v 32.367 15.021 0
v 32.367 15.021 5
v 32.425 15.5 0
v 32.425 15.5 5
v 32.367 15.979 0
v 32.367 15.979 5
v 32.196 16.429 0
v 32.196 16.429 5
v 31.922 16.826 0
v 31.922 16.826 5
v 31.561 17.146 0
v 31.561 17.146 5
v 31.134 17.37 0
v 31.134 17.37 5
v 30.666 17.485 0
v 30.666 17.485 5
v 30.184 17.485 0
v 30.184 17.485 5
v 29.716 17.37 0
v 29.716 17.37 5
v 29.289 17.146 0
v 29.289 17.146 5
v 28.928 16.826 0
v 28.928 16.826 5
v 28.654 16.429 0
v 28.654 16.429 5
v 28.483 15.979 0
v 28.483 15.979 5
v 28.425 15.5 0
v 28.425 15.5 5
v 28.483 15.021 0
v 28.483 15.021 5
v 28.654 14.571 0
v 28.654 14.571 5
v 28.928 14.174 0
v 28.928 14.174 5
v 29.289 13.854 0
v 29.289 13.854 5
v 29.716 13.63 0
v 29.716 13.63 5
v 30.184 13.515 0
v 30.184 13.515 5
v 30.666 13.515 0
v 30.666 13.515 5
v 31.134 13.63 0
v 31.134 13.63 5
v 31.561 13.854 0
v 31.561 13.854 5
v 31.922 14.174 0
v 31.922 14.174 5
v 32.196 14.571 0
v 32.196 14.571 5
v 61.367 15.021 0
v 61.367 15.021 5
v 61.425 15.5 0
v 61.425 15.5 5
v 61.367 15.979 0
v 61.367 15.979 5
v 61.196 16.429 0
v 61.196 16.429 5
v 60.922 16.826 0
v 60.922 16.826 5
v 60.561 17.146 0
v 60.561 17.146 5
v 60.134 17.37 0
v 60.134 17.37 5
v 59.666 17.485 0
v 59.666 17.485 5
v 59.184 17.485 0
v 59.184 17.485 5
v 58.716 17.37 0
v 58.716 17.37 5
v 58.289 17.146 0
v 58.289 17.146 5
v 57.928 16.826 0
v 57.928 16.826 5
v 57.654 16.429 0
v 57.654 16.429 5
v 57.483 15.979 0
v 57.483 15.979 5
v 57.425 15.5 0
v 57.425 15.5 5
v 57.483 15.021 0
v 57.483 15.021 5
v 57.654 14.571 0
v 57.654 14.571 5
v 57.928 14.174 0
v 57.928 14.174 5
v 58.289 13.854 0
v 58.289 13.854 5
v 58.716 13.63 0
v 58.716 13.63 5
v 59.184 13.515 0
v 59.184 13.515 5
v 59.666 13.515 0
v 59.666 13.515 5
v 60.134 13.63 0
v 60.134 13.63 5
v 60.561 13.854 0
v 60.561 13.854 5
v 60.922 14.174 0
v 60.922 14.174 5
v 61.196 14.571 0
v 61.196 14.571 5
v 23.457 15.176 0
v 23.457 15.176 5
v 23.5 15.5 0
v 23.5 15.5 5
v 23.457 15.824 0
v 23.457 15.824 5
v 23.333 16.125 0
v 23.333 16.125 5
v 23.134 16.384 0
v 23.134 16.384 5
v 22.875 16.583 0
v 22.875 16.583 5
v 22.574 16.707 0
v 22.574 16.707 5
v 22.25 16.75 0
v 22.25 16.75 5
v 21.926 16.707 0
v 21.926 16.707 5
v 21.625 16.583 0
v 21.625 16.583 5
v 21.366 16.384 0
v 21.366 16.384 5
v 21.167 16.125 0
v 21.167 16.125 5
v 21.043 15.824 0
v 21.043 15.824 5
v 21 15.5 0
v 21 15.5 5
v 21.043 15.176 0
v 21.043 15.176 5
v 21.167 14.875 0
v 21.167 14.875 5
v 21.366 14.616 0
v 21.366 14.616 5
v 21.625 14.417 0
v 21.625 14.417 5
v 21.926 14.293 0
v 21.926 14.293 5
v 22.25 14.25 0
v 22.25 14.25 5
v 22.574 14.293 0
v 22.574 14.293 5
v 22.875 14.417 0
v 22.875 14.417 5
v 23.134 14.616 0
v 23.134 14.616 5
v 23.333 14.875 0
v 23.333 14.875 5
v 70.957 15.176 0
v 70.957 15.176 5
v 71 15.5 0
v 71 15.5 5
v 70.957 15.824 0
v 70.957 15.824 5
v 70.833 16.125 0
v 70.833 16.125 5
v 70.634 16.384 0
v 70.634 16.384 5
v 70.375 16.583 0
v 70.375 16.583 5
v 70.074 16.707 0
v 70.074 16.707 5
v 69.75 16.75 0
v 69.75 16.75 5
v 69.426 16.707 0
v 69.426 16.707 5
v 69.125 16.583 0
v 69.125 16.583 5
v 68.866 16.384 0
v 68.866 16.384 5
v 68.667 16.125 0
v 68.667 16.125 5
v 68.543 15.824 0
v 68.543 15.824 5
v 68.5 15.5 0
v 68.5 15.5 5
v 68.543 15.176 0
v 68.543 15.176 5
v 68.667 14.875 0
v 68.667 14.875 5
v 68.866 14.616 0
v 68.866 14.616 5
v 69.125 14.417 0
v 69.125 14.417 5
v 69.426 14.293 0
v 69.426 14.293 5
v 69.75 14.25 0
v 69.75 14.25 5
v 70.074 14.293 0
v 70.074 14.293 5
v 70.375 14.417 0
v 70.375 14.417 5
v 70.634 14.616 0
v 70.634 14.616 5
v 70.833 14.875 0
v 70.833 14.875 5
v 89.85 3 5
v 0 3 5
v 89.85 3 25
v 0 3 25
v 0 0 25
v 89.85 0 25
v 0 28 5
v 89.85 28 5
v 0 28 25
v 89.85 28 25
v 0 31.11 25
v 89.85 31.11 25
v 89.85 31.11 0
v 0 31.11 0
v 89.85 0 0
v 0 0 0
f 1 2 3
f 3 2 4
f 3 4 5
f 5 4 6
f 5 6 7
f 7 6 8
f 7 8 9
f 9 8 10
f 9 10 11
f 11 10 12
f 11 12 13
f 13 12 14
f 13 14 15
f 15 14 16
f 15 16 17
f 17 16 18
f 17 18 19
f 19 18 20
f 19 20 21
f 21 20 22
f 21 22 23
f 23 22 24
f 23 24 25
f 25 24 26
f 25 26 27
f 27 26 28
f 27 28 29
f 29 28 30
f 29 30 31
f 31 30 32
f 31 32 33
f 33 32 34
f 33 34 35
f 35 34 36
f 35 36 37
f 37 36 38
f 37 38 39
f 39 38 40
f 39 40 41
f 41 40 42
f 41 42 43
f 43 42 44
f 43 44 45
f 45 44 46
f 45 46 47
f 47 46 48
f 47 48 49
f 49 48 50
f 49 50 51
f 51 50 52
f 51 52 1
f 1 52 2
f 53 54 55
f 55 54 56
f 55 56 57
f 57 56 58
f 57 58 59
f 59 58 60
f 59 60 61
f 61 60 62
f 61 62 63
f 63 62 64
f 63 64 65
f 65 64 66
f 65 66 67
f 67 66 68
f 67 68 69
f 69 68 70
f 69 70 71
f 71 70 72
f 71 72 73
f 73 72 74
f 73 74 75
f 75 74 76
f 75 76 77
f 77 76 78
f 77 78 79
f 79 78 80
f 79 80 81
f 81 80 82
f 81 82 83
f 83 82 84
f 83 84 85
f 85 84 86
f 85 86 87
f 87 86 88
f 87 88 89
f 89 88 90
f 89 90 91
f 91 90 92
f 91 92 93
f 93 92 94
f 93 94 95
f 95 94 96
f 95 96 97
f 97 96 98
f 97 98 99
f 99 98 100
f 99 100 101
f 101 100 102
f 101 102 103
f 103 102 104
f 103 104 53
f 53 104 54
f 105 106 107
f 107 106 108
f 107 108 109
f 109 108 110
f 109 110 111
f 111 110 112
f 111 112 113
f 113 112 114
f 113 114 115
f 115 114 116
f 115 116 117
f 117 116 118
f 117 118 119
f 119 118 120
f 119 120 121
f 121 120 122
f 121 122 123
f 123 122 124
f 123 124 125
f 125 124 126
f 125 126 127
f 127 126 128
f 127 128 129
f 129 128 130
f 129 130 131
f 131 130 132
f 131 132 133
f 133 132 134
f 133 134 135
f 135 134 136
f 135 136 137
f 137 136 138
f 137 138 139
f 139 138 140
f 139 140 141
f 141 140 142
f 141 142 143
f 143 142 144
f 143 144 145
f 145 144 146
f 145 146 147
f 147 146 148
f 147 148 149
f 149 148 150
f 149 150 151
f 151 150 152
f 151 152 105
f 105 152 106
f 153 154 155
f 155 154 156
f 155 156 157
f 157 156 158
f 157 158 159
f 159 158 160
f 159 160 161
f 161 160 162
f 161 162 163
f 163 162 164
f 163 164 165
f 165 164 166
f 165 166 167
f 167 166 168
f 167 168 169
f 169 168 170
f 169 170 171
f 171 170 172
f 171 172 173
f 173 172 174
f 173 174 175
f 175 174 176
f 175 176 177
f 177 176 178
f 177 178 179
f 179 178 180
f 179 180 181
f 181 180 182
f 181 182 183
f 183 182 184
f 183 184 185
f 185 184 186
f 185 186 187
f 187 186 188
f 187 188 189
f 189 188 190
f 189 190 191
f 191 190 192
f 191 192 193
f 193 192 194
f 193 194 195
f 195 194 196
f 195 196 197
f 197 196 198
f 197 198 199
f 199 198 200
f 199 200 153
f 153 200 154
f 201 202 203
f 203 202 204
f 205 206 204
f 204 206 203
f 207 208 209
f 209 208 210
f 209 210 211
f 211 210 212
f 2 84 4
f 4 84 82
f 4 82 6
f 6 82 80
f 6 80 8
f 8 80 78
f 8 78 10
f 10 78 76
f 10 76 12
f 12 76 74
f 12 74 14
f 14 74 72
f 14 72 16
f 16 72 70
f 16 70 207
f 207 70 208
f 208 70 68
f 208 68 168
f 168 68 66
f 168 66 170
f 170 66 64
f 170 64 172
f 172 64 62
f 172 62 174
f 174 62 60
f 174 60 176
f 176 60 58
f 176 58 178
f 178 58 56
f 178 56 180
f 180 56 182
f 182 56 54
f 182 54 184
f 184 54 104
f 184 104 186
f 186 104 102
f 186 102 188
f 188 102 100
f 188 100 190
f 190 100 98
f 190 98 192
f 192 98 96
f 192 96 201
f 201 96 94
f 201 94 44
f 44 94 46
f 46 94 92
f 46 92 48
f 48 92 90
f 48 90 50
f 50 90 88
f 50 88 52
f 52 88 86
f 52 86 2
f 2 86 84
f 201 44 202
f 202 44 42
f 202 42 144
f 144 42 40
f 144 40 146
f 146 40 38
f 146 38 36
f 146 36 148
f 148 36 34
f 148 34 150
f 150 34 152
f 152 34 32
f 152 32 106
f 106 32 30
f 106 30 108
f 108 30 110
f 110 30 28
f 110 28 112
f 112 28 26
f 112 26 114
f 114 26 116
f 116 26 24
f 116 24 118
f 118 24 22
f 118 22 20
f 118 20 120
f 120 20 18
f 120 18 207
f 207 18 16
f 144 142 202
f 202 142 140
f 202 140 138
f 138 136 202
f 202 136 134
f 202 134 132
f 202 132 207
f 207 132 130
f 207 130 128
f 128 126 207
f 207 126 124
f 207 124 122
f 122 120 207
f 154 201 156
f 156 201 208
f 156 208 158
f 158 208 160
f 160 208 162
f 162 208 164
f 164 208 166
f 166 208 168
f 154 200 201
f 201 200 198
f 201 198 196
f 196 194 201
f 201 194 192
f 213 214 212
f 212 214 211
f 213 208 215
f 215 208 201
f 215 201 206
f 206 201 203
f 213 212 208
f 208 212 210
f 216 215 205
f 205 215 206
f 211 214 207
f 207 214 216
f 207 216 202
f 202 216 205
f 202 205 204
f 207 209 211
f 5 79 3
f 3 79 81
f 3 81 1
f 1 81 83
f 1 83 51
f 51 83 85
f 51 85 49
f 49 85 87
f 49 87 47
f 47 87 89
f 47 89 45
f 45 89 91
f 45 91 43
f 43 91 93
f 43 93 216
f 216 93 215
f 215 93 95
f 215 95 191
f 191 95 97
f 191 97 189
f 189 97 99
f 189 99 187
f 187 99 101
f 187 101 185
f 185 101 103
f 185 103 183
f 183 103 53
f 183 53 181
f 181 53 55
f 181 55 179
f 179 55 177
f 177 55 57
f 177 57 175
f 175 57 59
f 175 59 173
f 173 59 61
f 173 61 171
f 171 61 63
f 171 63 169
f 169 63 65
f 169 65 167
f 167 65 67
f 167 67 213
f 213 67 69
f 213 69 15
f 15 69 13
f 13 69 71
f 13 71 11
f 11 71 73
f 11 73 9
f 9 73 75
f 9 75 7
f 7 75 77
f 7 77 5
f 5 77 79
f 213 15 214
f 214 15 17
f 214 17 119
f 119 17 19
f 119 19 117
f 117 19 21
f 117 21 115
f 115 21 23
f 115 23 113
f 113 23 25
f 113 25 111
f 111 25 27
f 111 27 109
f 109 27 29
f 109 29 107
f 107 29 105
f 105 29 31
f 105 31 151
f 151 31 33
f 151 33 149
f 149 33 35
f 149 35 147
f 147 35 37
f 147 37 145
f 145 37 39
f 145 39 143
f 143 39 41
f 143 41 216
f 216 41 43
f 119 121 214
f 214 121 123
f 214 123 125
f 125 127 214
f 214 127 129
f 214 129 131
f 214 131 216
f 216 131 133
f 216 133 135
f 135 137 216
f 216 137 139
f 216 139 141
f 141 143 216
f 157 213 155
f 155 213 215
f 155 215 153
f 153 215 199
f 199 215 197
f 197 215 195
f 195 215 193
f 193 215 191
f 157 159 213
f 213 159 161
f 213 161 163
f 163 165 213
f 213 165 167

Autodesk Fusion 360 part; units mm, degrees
sketch "Sketch1" plane through (0, 0, 0) normal (0, 0, 1) x (1, 0, 0) in component "Mount"
  line L0 (0, 0) -> (89.85, 0)
  line L1 (89.85, 0) -> (89.85, 31.11)
  line L2 (89.85, 31.11) -> (0, 31.11)
  line L3 (0, 31.11) -> (0, 0)
  dimension "d1" = 89.85
  dimension "d2" = 31.11
extrude "Extrude1" add sketch "Sketch1" along normal blind 5 in component "Mount"
sketch "Sketch2" plane through (0, 0, 5) normal (0, 0, 1) x (-1, 0, 0) in component "Mount"
  line L0 (0, -31.11) -> (0, 0)
  line L1 (0, 0) -> (-89.85, 0)
  line L2 (-89.85, 0) -> (-89.85, -31.11)
  line L3 (-89.85, -31.11) -> (0, -31.11)
  line L4 (-44.925, -31.11) -> (-44.925, -28.11) construction
  line L5 (-44.925, 0) -> (-44.925, -3) construction
  line L6 (0, -3) -> (-89.85, -3)
  line L7 (0, -28) -> (-89.85, -28)
  dimension "d5" = 3
  dimension "d6" = 3
extrude "Extrude2" add sketch "Sketch2" along normal blind 20 contours L0 L2 L3 L7 | L0 L1 L2 L6 in component "Mount"
sketch "Sketch3" plane through (0, 0, 5) normal (0, 0, 1) x (-1, 0, 0) in component "Mount"
  line L0 (0, -3) -> (-89.85, -3)
  line L1 (-89.85, -3) -> (-89.85, -28)
  line L2 (-89.85, -28) -> (0, -28)
  line L3 (0, -28) -> (0, -3)
  line L4 (-44.925, -28) -> (-44.925, -3) construction
  line L5 (-89.85, -15.5) -> (0, -15.5) construction
  line L6 (-44.925, -15.5) -> (-63.425, -15.5) construction
  line L7 (-44.925, -15.5) -> (-26.425, -15.5) construction
  line L8 (-63.425, -15.5) -> (-59.425, -15.5) construction
  line L9 (-26.425, -15.5) -> (-30.425, -15.5) construction
  circle A0 centre (-30.425, -15.5) radius 4 construction
  circle A1 centre (-59.425, -15.5) radius 4 construction
  line L10 (0, -15.5) -> (-21, -15.5) construction
  line L11 (-21, -15.5) -> (-22.25, -15.5) construction
  circle A2 centre (-22.25, -15.5) radius 1.25
  line L12 (-23.5, -15.5) -> (-68.5, -15.5) construction
  line L13 (-68.5, -15.5) -> (-69.75, -15.5) construction
  circle A3 centre (-69.75, -15.5) radius 1.25
  circle A4 centre (-30.425, -15.5) radius 2
  circle A5 centre (-59.425, -15.5) radius 2
  dimension "d9" = 18.5
  dimension "d10" = 18.5
  dimension "d11" = 4
  dimension "d12" = 4
  dimension "d13" = 8
  dimension "d14" = 8
  dimension "d15" = 21
  dimension "d16" = 1.25
  dimension "d17" = 2.5
  dimension "d18" = 45
  dimension "d19" = 1.25
  dimension "d20" = 2.5
  dimension "d21" = 4
  dimension "d22" = 4
extrude "Extrude3" cut sketch "Sketch3" against normal blind 5 contours A2 | A3 | A4 | A5 in component "Mount"
component "Mount" placed x (1, 0, 0) y (0, 1, 0) z (0, 0, 1) at (0, 0, 0)
